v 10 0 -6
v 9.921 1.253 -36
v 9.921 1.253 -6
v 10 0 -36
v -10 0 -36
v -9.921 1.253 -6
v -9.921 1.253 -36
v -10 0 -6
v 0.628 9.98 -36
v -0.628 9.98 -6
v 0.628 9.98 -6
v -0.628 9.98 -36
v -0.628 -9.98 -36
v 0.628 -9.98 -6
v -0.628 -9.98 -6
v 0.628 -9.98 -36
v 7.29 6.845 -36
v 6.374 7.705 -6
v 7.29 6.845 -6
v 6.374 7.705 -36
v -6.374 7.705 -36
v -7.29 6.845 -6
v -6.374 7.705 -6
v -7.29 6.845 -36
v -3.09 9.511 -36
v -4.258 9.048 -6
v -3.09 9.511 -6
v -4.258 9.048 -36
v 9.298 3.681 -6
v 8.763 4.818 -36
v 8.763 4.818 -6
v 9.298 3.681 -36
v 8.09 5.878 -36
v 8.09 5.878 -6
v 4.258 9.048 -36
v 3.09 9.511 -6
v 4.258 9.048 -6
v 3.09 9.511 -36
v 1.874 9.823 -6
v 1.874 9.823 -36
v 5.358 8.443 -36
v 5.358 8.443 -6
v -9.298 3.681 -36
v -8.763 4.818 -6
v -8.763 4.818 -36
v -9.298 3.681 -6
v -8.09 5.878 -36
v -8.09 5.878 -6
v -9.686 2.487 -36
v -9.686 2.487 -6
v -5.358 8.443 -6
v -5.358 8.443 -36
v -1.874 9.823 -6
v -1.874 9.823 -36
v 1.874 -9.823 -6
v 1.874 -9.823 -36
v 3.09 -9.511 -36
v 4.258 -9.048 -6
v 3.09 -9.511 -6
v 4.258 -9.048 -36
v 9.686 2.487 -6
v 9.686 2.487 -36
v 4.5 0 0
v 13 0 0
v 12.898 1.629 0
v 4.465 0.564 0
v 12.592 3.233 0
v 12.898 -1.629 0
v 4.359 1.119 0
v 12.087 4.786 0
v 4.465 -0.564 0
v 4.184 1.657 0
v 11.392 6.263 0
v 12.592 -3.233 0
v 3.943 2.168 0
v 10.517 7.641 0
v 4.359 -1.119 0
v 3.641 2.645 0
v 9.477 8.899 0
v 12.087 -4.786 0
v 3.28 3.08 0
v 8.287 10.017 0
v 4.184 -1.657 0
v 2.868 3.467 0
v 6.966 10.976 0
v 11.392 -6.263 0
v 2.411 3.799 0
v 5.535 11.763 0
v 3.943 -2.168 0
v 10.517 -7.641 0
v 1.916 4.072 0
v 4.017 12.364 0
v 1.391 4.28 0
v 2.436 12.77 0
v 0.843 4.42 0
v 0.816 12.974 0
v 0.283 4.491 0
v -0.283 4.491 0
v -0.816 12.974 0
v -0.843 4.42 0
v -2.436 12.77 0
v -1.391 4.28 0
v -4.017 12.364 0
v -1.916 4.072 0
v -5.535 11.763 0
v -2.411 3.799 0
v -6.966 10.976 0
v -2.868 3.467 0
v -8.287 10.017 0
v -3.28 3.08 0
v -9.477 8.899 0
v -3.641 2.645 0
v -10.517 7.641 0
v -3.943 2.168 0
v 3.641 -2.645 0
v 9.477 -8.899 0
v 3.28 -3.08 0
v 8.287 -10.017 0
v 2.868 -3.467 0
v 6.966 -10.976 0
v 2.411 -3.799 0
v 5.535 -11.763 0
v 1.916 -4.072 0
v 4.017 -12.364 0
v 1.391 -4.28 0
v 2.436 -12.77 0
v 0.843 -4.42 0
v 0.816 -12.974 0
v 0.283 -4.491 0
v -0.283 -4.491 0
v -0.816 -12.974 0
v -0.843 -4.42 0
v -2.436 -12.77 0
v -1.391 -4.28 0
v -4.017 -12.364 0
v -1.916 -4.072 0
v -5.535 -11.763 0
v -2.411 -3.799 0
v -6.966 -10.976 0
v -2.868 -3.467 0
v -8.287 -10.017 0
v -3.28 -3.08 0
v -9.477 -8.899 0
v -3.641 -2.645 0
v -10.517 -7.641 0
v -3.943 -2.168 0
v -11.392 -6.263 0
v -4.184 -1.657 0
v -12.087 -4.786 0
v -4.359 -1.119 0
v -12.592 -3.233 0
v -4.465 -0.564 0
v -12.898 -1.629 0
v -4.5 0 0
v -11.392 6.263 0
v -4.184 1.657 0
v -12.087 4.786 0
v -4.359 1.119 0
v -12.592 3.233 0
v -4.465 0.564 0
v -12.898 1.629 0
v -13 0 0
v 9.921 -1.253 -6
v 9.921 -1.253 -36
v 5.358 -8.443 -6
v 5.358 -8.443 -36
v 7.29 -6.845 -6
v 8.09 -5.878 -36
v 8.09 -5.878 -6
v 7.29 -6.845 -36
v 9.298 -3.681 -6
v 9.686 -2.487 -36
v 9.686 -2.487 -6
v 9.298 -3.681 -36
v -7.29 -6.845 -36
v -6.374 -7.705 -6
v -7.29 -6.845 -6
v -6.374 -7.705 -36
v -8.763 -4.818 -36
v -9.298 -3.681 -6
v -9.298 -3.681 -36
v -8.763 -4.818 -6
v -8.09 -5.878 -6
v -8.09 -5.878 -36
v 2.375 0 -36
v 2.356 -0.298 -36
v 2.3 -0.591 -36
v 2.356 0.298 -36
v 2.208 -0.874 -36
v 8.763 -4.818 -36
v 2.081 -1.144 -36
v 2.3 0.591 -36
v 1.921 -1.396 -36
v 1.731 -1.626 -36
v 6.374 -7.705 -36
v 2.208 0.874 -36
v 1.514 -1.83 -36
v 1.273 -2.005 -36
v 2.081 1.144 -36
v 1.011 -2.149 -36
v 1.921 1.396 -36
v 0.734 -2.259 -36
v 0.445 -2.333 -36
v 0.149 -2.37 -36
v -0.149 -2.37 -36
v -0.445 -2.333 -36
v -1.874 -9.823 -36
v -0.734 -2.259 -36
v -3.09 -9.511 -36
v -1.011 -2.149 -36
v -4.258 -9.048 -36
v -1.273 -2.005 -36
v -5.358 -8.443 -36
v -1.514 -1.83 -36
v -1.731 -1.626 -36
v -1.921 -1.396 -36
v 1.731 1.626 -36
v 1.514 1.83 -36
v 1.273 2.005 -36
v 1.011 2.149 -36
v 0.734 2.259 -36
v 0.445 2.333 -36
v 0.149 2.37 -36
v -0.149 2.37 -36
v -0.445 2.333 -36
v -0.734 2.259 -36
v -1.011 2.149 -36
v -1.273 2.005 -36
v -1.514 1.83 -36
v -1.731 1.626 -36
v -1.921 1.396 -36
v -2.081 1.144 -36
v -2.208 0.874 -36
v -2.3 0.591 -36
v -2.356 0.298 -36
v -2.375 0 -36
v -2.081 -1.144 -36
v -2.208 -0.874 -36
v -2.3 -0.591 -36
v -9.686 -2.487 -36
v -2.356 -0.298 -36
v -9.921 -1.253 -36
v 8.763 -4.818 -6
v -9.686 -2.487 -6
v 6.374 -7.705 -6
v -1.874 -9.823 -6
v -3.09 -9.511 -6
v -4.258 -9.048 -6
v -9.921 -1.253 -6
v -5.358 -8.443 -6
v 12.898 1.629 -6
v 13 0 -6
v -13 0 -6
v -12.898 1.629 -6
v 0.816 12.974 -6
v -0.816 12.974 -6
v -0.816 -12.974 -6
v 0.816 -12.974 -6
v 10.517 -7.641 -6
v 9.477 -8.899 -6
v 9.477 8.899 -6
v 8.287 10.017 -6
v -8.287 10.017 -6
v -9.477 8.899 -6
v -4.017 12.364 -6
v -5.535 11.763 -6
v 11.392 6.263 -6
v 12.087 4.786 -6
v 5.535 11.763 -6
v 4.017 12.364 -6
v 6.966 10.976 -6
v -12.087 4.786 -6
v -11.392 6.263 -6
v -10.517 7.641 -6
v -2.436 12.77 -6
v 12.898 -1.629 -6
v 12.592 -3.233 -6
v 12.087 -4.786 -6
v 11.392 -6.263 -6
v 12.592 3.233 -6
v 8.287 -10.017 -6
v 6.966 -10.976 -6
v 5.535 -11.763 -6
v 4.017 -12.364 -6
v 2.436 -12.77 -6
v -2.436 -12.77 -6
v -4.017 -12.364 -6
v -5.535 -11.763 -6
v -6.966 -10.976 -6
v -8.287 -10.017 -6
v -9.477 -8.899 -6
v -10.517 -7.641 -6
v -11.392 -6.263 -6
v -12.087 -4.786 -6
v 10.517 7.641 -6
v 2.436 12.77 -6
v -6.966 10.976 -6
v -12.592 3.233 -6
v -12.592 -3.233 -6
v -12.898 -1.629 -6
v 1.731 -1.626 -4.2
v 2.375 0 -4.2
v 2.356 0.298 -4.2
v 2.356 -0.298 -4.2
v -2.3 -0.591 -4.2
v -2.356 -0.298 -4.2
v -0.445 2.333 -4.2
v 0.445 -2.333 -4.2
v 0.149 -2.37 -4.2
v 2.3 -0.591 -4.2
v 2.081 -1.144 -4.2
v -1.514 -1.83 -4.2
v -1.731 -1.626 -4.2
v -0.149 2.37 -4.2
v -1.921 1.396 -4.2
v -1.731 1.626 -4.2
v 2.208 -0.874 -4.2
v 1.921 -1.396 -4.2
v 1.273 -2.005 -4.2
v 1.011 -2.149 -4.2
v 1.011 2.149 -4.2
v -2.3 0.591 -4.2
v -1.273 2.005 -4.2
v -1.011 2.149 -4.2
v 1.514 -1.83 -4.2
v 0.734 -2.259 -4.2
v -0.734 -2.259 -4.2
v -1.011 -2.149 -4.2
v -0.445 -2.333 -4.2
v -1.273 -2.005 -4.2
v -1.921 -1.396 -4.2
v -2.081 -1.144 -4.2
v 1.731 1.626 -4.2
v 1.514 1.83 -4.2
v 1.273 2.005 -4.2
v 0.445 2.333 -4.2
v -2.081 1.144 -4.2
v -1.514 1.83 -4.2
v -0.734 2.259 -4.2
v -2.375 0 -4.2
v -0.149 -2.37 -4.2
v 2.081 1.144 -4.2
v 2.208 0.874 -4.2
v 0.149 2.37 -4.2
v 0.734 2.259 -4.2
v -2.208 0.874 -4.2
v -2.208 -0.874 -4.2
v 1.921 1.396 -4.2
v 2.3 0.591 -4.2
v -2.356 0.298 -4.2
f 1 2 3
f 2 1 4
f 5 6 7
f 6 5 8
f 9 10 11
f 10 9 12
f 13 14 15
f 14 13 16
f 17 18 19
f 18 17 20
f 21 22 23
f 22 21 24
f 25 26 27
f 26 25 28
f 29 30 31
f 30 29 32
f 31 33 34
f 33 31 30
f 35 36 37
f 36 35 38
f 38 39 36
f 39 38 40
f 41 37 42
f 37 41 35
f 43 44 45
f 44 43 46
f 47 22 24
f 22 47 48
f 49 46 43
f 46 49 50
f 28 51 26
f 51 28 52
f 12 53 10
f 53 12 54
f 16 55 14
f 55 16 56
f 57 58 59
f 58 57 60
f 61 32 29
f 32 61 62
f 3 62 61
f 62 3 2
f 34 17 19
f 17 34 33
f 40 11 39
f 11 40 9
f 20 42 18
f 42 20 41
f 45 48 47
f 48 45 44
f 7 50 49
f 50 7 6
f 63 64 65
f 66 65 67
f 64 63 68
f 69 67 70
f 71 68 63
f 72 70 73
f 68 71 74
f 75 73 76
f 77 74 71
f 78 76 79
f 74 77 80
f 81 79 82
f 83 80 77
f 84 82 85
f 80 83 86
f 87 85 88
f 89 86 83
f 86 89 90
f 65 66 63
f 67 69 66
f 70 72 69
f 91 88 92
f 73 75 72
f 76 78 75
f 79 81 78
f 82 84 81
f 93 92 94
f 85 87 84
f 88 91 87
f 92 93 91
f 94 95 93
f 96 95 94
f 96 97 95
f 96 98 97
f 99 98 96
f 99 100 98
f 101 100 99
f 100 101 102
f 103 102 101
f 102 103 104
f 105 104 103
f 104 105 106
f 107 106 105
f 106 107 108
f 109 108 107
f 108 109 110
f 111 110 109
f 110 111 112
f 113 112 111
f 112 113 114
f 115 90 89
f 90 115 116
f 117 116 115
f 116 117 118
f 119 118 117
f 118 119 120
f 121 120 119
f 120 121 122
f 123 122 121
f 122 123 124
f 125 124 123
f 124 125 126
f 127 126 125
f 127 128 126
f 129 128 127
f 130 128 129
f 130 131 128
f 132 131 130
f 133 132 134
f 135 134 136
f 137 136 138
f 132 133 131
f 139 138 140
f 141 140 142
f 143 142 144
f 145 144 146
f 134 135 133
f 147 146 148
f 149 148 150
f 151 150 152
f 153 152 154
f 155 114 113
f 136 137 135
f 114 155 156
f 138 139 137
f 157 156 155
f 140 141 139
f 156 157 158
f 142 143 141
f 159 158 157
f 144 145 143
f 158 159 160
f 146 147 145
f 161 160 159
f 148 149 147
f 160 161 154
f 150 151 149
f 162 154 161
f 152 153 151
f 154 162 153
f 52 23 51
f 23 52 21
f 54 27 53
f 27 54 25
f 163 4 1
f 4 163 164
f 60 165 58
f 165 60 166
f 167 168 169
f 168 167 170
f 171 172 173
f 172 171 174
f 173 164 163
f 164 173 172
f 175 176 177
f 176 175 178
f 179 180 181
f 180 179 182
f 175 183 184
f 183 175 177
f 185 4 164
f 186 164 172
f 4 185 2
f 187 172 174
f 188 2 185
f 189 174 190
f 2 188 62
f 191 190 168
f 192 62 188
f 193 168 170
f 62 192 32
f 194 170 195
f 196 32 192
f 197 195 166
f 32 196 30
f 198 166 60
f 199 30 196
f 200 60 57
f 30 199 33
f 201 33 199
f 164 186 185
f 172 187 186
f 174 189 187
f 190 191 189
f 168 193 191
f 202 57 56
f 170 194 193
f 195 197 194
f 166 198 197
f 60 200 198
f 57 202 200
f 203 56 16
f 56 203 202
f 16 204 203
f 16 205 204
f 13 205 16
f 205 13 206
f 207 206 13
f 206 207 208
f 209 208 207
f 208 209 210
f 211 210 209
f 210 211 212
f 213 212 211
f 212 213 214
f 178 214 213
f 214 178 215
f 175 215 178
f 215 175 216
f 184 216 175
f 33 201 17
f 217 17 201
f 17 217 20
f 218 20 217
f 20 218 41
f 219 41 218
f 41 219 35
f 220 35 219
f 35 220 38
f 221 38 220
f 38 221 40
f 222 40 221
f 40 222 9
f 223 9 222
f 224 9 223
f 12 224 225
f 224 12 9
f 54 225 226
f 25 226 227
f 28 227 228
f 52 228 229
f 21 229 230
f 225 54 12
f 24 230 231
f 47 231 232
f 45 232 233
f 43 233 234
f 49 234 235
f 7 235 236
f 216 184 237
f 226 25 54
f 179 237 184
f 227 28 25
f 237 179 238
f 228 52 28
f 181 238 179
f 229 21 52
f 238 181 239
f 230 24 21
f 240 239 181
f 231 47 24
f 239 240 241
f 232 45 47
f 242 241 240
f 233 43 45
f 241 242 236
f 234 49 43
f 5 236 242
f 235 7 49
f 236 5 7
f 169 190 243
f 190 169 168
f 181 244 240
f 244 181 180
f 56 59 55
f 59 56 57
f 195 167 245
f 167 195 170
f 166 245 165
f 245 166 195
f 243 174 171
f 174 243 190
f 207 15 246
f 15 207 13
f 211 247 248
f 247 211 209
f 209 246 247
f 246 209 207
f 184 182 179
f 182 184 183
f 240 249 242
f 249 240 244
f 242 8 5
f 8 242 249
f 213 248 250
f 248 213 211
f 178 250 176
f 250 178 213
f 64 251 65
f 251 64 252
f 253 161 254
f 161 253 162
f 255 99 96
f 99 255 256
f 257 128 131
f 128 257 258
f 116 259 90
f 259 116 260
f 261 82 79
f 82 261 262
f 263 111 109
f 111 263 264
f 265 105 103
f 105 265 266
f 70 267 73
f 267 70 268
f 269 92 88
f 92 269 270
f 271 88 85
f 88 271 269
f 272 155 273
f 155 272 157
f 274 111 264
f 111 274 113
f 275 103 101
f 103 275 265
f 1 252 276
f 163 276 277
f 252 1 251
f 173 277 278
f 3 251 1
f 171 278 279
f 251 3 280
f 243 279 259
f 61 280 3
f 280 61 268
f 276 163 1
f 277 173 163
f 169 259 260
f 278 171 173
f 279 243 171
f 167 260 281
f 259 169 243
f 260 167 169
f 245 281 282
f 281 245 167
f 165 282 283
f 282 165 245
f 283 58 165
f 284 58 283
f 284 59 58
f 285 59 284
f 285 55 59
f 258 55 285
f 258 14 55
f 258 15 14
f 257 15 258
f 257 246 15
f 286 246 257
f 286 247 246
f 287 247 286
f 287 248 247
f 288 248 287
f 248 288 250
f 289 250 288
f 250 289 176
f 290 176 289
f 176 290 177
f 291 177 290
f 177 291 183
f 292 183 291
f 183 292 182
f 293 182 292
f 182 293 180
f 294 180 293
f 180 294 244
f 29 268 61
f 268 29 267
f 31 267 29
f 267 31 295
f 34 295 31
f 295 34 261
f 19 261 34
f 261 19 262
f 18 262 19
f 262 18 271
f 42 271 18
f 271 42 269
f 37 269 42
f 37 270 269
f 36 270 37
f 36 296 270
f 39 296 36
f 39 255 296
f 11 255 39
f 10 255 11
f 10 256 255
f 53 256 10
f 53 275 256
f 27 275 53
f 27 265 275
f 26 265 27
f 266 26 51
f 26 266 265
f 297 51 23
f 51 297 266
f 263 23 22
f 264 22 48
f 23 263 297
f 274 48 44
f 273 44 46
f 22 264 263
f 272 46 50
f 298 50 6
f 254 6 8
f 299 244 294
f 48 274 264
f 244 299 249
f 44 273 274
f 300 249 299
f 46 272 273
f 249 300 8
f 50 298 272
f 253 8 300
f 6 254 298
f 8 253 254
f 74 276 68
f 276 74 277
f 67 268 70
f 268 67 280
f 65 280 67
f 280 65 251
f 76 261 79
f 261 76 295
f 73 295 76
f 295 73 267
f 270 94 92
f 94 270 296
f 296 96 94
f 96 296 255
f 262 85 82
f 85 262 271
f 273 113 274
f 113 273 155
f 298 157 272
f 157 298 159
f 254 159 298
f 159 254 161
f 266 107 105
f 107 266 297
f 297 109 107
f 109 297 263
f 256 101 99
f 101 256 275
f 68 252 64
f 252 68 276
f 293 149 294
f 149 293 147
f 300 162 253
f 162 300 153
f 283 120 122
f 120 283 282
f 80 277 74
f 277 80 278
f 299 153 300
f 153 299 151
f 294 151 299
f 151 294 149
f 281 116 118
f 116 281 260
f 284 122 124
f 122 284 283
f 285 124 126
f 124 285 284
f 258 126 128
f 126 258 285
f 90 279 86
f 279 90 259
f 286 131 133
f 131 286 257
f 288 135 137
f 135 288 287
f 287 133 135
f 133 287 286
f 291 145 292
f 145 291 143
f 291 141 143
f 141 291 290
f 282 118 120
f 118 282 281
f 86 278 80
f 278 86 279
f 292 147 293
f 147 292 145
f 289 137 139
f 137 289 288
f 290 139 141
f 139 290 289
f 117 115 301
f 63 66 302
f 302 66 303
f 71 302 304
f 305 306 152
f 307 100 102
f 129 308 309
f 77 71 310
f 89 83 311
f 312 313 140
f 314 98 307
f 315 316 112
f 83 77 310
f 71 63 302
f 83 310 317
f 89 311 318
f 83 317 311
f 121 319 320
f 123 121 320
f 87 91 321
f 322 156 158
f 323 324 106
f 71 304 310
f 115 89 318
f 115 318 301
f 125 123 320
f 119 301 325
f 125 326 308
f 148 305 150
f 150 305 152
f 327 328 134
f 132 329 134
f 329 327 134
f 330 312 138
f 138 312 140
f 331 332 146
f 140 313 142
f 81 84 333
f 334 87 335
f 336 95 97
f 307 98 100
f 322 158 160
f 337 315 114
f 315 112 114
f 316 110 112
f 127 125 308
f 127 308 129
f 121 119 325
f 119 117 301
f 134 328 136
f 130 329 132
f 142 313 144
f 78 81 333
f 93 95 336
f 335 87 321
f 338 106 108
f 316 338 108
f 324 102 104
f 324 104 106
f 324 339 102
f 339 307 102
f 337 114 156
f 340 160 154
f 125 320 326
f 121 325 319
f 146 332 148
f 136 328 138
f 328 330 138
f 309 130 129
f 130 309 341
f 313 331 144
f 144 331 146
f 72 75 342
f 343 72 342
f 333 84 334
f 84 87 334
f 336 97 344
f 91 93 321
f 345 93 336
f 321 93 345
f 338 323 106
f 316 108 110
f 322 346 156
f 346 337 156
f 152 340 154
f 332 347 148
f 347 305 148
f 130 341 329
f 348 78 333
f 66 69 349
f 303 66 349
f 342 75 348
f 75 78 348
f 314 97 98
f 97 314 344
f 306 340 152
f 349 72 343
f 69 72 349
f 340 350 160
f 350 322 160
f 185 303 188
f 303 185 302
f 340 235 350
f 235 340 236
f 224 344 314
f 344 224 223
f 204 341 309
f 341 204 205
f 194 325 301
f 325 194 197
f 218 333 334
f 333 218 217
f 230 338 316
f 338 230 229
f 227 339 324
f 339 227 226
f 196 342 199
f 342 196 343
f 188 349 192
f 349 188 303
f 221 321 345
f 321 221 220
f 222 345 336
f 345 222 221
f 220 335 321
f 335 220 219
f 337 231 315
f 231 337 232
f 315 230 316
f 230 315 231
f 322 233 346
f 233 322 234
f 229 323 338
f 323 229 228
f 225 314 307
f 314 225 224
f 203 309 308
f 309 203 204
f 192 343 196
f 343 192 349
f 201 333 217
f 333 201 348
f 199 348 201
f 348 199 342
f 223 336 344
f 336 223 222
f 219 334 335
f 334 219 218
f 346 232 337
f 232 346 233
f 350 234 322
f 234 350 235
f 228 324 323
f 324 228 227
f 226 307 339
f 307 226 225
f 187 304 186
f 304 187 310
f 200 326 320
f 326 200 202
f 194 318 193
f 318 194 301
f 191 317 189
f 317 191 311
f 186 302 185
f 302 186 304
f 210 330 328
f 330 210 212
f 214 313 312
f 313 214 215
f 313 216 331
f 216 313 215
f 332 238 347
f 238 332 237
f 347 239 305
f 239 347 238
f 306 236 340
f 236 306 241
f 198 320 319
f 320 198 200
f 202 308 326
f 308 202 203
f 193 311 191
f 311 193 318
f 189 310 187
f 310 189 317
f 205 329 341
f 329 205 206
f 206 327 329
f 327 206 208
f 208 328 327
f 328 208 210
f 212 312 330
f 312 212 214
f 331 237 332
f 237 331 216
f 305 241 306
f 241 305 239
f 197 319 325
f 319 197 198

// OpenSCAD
$fn = 50;


difference() {
	union() {
		translate(v = [0, 0, -36.0000000000]) {
			cylinder(h = 36, r = 10.0000000000);
		}
		translate(v = [0, 0, -6.0000000000]) {
			cylinder(h = 6, r = 13.0000000000);
		}
	}
	union() {
		translate(v = [0, 0, 0]) {
			rotate(a = [0, 0, 0]) {
				difference() {
					union() {
						#translate(v = [0, 0, -36.0000000000]) {
							cylinder(h = 36, r = 2.2500000000);
						}
						#translate(v = [0, 0, -4.2000000000]) {
							cylinder(h = 4.2000000000, r = 10.0000000000, r1 = 2.3750000000, r2 = 4.5000000000);
						}
						#translate(v = [0, 0, -36.0000000000]) {
							cylinder(h = 36, r = 2.3750000000);
						}
						#translate(v = [0, 0, -36.0000000000]) {
							cylinder(h = 36, r = 2.2500000000);
						}
					}
					union();
				}
			}
		}
	}
}
